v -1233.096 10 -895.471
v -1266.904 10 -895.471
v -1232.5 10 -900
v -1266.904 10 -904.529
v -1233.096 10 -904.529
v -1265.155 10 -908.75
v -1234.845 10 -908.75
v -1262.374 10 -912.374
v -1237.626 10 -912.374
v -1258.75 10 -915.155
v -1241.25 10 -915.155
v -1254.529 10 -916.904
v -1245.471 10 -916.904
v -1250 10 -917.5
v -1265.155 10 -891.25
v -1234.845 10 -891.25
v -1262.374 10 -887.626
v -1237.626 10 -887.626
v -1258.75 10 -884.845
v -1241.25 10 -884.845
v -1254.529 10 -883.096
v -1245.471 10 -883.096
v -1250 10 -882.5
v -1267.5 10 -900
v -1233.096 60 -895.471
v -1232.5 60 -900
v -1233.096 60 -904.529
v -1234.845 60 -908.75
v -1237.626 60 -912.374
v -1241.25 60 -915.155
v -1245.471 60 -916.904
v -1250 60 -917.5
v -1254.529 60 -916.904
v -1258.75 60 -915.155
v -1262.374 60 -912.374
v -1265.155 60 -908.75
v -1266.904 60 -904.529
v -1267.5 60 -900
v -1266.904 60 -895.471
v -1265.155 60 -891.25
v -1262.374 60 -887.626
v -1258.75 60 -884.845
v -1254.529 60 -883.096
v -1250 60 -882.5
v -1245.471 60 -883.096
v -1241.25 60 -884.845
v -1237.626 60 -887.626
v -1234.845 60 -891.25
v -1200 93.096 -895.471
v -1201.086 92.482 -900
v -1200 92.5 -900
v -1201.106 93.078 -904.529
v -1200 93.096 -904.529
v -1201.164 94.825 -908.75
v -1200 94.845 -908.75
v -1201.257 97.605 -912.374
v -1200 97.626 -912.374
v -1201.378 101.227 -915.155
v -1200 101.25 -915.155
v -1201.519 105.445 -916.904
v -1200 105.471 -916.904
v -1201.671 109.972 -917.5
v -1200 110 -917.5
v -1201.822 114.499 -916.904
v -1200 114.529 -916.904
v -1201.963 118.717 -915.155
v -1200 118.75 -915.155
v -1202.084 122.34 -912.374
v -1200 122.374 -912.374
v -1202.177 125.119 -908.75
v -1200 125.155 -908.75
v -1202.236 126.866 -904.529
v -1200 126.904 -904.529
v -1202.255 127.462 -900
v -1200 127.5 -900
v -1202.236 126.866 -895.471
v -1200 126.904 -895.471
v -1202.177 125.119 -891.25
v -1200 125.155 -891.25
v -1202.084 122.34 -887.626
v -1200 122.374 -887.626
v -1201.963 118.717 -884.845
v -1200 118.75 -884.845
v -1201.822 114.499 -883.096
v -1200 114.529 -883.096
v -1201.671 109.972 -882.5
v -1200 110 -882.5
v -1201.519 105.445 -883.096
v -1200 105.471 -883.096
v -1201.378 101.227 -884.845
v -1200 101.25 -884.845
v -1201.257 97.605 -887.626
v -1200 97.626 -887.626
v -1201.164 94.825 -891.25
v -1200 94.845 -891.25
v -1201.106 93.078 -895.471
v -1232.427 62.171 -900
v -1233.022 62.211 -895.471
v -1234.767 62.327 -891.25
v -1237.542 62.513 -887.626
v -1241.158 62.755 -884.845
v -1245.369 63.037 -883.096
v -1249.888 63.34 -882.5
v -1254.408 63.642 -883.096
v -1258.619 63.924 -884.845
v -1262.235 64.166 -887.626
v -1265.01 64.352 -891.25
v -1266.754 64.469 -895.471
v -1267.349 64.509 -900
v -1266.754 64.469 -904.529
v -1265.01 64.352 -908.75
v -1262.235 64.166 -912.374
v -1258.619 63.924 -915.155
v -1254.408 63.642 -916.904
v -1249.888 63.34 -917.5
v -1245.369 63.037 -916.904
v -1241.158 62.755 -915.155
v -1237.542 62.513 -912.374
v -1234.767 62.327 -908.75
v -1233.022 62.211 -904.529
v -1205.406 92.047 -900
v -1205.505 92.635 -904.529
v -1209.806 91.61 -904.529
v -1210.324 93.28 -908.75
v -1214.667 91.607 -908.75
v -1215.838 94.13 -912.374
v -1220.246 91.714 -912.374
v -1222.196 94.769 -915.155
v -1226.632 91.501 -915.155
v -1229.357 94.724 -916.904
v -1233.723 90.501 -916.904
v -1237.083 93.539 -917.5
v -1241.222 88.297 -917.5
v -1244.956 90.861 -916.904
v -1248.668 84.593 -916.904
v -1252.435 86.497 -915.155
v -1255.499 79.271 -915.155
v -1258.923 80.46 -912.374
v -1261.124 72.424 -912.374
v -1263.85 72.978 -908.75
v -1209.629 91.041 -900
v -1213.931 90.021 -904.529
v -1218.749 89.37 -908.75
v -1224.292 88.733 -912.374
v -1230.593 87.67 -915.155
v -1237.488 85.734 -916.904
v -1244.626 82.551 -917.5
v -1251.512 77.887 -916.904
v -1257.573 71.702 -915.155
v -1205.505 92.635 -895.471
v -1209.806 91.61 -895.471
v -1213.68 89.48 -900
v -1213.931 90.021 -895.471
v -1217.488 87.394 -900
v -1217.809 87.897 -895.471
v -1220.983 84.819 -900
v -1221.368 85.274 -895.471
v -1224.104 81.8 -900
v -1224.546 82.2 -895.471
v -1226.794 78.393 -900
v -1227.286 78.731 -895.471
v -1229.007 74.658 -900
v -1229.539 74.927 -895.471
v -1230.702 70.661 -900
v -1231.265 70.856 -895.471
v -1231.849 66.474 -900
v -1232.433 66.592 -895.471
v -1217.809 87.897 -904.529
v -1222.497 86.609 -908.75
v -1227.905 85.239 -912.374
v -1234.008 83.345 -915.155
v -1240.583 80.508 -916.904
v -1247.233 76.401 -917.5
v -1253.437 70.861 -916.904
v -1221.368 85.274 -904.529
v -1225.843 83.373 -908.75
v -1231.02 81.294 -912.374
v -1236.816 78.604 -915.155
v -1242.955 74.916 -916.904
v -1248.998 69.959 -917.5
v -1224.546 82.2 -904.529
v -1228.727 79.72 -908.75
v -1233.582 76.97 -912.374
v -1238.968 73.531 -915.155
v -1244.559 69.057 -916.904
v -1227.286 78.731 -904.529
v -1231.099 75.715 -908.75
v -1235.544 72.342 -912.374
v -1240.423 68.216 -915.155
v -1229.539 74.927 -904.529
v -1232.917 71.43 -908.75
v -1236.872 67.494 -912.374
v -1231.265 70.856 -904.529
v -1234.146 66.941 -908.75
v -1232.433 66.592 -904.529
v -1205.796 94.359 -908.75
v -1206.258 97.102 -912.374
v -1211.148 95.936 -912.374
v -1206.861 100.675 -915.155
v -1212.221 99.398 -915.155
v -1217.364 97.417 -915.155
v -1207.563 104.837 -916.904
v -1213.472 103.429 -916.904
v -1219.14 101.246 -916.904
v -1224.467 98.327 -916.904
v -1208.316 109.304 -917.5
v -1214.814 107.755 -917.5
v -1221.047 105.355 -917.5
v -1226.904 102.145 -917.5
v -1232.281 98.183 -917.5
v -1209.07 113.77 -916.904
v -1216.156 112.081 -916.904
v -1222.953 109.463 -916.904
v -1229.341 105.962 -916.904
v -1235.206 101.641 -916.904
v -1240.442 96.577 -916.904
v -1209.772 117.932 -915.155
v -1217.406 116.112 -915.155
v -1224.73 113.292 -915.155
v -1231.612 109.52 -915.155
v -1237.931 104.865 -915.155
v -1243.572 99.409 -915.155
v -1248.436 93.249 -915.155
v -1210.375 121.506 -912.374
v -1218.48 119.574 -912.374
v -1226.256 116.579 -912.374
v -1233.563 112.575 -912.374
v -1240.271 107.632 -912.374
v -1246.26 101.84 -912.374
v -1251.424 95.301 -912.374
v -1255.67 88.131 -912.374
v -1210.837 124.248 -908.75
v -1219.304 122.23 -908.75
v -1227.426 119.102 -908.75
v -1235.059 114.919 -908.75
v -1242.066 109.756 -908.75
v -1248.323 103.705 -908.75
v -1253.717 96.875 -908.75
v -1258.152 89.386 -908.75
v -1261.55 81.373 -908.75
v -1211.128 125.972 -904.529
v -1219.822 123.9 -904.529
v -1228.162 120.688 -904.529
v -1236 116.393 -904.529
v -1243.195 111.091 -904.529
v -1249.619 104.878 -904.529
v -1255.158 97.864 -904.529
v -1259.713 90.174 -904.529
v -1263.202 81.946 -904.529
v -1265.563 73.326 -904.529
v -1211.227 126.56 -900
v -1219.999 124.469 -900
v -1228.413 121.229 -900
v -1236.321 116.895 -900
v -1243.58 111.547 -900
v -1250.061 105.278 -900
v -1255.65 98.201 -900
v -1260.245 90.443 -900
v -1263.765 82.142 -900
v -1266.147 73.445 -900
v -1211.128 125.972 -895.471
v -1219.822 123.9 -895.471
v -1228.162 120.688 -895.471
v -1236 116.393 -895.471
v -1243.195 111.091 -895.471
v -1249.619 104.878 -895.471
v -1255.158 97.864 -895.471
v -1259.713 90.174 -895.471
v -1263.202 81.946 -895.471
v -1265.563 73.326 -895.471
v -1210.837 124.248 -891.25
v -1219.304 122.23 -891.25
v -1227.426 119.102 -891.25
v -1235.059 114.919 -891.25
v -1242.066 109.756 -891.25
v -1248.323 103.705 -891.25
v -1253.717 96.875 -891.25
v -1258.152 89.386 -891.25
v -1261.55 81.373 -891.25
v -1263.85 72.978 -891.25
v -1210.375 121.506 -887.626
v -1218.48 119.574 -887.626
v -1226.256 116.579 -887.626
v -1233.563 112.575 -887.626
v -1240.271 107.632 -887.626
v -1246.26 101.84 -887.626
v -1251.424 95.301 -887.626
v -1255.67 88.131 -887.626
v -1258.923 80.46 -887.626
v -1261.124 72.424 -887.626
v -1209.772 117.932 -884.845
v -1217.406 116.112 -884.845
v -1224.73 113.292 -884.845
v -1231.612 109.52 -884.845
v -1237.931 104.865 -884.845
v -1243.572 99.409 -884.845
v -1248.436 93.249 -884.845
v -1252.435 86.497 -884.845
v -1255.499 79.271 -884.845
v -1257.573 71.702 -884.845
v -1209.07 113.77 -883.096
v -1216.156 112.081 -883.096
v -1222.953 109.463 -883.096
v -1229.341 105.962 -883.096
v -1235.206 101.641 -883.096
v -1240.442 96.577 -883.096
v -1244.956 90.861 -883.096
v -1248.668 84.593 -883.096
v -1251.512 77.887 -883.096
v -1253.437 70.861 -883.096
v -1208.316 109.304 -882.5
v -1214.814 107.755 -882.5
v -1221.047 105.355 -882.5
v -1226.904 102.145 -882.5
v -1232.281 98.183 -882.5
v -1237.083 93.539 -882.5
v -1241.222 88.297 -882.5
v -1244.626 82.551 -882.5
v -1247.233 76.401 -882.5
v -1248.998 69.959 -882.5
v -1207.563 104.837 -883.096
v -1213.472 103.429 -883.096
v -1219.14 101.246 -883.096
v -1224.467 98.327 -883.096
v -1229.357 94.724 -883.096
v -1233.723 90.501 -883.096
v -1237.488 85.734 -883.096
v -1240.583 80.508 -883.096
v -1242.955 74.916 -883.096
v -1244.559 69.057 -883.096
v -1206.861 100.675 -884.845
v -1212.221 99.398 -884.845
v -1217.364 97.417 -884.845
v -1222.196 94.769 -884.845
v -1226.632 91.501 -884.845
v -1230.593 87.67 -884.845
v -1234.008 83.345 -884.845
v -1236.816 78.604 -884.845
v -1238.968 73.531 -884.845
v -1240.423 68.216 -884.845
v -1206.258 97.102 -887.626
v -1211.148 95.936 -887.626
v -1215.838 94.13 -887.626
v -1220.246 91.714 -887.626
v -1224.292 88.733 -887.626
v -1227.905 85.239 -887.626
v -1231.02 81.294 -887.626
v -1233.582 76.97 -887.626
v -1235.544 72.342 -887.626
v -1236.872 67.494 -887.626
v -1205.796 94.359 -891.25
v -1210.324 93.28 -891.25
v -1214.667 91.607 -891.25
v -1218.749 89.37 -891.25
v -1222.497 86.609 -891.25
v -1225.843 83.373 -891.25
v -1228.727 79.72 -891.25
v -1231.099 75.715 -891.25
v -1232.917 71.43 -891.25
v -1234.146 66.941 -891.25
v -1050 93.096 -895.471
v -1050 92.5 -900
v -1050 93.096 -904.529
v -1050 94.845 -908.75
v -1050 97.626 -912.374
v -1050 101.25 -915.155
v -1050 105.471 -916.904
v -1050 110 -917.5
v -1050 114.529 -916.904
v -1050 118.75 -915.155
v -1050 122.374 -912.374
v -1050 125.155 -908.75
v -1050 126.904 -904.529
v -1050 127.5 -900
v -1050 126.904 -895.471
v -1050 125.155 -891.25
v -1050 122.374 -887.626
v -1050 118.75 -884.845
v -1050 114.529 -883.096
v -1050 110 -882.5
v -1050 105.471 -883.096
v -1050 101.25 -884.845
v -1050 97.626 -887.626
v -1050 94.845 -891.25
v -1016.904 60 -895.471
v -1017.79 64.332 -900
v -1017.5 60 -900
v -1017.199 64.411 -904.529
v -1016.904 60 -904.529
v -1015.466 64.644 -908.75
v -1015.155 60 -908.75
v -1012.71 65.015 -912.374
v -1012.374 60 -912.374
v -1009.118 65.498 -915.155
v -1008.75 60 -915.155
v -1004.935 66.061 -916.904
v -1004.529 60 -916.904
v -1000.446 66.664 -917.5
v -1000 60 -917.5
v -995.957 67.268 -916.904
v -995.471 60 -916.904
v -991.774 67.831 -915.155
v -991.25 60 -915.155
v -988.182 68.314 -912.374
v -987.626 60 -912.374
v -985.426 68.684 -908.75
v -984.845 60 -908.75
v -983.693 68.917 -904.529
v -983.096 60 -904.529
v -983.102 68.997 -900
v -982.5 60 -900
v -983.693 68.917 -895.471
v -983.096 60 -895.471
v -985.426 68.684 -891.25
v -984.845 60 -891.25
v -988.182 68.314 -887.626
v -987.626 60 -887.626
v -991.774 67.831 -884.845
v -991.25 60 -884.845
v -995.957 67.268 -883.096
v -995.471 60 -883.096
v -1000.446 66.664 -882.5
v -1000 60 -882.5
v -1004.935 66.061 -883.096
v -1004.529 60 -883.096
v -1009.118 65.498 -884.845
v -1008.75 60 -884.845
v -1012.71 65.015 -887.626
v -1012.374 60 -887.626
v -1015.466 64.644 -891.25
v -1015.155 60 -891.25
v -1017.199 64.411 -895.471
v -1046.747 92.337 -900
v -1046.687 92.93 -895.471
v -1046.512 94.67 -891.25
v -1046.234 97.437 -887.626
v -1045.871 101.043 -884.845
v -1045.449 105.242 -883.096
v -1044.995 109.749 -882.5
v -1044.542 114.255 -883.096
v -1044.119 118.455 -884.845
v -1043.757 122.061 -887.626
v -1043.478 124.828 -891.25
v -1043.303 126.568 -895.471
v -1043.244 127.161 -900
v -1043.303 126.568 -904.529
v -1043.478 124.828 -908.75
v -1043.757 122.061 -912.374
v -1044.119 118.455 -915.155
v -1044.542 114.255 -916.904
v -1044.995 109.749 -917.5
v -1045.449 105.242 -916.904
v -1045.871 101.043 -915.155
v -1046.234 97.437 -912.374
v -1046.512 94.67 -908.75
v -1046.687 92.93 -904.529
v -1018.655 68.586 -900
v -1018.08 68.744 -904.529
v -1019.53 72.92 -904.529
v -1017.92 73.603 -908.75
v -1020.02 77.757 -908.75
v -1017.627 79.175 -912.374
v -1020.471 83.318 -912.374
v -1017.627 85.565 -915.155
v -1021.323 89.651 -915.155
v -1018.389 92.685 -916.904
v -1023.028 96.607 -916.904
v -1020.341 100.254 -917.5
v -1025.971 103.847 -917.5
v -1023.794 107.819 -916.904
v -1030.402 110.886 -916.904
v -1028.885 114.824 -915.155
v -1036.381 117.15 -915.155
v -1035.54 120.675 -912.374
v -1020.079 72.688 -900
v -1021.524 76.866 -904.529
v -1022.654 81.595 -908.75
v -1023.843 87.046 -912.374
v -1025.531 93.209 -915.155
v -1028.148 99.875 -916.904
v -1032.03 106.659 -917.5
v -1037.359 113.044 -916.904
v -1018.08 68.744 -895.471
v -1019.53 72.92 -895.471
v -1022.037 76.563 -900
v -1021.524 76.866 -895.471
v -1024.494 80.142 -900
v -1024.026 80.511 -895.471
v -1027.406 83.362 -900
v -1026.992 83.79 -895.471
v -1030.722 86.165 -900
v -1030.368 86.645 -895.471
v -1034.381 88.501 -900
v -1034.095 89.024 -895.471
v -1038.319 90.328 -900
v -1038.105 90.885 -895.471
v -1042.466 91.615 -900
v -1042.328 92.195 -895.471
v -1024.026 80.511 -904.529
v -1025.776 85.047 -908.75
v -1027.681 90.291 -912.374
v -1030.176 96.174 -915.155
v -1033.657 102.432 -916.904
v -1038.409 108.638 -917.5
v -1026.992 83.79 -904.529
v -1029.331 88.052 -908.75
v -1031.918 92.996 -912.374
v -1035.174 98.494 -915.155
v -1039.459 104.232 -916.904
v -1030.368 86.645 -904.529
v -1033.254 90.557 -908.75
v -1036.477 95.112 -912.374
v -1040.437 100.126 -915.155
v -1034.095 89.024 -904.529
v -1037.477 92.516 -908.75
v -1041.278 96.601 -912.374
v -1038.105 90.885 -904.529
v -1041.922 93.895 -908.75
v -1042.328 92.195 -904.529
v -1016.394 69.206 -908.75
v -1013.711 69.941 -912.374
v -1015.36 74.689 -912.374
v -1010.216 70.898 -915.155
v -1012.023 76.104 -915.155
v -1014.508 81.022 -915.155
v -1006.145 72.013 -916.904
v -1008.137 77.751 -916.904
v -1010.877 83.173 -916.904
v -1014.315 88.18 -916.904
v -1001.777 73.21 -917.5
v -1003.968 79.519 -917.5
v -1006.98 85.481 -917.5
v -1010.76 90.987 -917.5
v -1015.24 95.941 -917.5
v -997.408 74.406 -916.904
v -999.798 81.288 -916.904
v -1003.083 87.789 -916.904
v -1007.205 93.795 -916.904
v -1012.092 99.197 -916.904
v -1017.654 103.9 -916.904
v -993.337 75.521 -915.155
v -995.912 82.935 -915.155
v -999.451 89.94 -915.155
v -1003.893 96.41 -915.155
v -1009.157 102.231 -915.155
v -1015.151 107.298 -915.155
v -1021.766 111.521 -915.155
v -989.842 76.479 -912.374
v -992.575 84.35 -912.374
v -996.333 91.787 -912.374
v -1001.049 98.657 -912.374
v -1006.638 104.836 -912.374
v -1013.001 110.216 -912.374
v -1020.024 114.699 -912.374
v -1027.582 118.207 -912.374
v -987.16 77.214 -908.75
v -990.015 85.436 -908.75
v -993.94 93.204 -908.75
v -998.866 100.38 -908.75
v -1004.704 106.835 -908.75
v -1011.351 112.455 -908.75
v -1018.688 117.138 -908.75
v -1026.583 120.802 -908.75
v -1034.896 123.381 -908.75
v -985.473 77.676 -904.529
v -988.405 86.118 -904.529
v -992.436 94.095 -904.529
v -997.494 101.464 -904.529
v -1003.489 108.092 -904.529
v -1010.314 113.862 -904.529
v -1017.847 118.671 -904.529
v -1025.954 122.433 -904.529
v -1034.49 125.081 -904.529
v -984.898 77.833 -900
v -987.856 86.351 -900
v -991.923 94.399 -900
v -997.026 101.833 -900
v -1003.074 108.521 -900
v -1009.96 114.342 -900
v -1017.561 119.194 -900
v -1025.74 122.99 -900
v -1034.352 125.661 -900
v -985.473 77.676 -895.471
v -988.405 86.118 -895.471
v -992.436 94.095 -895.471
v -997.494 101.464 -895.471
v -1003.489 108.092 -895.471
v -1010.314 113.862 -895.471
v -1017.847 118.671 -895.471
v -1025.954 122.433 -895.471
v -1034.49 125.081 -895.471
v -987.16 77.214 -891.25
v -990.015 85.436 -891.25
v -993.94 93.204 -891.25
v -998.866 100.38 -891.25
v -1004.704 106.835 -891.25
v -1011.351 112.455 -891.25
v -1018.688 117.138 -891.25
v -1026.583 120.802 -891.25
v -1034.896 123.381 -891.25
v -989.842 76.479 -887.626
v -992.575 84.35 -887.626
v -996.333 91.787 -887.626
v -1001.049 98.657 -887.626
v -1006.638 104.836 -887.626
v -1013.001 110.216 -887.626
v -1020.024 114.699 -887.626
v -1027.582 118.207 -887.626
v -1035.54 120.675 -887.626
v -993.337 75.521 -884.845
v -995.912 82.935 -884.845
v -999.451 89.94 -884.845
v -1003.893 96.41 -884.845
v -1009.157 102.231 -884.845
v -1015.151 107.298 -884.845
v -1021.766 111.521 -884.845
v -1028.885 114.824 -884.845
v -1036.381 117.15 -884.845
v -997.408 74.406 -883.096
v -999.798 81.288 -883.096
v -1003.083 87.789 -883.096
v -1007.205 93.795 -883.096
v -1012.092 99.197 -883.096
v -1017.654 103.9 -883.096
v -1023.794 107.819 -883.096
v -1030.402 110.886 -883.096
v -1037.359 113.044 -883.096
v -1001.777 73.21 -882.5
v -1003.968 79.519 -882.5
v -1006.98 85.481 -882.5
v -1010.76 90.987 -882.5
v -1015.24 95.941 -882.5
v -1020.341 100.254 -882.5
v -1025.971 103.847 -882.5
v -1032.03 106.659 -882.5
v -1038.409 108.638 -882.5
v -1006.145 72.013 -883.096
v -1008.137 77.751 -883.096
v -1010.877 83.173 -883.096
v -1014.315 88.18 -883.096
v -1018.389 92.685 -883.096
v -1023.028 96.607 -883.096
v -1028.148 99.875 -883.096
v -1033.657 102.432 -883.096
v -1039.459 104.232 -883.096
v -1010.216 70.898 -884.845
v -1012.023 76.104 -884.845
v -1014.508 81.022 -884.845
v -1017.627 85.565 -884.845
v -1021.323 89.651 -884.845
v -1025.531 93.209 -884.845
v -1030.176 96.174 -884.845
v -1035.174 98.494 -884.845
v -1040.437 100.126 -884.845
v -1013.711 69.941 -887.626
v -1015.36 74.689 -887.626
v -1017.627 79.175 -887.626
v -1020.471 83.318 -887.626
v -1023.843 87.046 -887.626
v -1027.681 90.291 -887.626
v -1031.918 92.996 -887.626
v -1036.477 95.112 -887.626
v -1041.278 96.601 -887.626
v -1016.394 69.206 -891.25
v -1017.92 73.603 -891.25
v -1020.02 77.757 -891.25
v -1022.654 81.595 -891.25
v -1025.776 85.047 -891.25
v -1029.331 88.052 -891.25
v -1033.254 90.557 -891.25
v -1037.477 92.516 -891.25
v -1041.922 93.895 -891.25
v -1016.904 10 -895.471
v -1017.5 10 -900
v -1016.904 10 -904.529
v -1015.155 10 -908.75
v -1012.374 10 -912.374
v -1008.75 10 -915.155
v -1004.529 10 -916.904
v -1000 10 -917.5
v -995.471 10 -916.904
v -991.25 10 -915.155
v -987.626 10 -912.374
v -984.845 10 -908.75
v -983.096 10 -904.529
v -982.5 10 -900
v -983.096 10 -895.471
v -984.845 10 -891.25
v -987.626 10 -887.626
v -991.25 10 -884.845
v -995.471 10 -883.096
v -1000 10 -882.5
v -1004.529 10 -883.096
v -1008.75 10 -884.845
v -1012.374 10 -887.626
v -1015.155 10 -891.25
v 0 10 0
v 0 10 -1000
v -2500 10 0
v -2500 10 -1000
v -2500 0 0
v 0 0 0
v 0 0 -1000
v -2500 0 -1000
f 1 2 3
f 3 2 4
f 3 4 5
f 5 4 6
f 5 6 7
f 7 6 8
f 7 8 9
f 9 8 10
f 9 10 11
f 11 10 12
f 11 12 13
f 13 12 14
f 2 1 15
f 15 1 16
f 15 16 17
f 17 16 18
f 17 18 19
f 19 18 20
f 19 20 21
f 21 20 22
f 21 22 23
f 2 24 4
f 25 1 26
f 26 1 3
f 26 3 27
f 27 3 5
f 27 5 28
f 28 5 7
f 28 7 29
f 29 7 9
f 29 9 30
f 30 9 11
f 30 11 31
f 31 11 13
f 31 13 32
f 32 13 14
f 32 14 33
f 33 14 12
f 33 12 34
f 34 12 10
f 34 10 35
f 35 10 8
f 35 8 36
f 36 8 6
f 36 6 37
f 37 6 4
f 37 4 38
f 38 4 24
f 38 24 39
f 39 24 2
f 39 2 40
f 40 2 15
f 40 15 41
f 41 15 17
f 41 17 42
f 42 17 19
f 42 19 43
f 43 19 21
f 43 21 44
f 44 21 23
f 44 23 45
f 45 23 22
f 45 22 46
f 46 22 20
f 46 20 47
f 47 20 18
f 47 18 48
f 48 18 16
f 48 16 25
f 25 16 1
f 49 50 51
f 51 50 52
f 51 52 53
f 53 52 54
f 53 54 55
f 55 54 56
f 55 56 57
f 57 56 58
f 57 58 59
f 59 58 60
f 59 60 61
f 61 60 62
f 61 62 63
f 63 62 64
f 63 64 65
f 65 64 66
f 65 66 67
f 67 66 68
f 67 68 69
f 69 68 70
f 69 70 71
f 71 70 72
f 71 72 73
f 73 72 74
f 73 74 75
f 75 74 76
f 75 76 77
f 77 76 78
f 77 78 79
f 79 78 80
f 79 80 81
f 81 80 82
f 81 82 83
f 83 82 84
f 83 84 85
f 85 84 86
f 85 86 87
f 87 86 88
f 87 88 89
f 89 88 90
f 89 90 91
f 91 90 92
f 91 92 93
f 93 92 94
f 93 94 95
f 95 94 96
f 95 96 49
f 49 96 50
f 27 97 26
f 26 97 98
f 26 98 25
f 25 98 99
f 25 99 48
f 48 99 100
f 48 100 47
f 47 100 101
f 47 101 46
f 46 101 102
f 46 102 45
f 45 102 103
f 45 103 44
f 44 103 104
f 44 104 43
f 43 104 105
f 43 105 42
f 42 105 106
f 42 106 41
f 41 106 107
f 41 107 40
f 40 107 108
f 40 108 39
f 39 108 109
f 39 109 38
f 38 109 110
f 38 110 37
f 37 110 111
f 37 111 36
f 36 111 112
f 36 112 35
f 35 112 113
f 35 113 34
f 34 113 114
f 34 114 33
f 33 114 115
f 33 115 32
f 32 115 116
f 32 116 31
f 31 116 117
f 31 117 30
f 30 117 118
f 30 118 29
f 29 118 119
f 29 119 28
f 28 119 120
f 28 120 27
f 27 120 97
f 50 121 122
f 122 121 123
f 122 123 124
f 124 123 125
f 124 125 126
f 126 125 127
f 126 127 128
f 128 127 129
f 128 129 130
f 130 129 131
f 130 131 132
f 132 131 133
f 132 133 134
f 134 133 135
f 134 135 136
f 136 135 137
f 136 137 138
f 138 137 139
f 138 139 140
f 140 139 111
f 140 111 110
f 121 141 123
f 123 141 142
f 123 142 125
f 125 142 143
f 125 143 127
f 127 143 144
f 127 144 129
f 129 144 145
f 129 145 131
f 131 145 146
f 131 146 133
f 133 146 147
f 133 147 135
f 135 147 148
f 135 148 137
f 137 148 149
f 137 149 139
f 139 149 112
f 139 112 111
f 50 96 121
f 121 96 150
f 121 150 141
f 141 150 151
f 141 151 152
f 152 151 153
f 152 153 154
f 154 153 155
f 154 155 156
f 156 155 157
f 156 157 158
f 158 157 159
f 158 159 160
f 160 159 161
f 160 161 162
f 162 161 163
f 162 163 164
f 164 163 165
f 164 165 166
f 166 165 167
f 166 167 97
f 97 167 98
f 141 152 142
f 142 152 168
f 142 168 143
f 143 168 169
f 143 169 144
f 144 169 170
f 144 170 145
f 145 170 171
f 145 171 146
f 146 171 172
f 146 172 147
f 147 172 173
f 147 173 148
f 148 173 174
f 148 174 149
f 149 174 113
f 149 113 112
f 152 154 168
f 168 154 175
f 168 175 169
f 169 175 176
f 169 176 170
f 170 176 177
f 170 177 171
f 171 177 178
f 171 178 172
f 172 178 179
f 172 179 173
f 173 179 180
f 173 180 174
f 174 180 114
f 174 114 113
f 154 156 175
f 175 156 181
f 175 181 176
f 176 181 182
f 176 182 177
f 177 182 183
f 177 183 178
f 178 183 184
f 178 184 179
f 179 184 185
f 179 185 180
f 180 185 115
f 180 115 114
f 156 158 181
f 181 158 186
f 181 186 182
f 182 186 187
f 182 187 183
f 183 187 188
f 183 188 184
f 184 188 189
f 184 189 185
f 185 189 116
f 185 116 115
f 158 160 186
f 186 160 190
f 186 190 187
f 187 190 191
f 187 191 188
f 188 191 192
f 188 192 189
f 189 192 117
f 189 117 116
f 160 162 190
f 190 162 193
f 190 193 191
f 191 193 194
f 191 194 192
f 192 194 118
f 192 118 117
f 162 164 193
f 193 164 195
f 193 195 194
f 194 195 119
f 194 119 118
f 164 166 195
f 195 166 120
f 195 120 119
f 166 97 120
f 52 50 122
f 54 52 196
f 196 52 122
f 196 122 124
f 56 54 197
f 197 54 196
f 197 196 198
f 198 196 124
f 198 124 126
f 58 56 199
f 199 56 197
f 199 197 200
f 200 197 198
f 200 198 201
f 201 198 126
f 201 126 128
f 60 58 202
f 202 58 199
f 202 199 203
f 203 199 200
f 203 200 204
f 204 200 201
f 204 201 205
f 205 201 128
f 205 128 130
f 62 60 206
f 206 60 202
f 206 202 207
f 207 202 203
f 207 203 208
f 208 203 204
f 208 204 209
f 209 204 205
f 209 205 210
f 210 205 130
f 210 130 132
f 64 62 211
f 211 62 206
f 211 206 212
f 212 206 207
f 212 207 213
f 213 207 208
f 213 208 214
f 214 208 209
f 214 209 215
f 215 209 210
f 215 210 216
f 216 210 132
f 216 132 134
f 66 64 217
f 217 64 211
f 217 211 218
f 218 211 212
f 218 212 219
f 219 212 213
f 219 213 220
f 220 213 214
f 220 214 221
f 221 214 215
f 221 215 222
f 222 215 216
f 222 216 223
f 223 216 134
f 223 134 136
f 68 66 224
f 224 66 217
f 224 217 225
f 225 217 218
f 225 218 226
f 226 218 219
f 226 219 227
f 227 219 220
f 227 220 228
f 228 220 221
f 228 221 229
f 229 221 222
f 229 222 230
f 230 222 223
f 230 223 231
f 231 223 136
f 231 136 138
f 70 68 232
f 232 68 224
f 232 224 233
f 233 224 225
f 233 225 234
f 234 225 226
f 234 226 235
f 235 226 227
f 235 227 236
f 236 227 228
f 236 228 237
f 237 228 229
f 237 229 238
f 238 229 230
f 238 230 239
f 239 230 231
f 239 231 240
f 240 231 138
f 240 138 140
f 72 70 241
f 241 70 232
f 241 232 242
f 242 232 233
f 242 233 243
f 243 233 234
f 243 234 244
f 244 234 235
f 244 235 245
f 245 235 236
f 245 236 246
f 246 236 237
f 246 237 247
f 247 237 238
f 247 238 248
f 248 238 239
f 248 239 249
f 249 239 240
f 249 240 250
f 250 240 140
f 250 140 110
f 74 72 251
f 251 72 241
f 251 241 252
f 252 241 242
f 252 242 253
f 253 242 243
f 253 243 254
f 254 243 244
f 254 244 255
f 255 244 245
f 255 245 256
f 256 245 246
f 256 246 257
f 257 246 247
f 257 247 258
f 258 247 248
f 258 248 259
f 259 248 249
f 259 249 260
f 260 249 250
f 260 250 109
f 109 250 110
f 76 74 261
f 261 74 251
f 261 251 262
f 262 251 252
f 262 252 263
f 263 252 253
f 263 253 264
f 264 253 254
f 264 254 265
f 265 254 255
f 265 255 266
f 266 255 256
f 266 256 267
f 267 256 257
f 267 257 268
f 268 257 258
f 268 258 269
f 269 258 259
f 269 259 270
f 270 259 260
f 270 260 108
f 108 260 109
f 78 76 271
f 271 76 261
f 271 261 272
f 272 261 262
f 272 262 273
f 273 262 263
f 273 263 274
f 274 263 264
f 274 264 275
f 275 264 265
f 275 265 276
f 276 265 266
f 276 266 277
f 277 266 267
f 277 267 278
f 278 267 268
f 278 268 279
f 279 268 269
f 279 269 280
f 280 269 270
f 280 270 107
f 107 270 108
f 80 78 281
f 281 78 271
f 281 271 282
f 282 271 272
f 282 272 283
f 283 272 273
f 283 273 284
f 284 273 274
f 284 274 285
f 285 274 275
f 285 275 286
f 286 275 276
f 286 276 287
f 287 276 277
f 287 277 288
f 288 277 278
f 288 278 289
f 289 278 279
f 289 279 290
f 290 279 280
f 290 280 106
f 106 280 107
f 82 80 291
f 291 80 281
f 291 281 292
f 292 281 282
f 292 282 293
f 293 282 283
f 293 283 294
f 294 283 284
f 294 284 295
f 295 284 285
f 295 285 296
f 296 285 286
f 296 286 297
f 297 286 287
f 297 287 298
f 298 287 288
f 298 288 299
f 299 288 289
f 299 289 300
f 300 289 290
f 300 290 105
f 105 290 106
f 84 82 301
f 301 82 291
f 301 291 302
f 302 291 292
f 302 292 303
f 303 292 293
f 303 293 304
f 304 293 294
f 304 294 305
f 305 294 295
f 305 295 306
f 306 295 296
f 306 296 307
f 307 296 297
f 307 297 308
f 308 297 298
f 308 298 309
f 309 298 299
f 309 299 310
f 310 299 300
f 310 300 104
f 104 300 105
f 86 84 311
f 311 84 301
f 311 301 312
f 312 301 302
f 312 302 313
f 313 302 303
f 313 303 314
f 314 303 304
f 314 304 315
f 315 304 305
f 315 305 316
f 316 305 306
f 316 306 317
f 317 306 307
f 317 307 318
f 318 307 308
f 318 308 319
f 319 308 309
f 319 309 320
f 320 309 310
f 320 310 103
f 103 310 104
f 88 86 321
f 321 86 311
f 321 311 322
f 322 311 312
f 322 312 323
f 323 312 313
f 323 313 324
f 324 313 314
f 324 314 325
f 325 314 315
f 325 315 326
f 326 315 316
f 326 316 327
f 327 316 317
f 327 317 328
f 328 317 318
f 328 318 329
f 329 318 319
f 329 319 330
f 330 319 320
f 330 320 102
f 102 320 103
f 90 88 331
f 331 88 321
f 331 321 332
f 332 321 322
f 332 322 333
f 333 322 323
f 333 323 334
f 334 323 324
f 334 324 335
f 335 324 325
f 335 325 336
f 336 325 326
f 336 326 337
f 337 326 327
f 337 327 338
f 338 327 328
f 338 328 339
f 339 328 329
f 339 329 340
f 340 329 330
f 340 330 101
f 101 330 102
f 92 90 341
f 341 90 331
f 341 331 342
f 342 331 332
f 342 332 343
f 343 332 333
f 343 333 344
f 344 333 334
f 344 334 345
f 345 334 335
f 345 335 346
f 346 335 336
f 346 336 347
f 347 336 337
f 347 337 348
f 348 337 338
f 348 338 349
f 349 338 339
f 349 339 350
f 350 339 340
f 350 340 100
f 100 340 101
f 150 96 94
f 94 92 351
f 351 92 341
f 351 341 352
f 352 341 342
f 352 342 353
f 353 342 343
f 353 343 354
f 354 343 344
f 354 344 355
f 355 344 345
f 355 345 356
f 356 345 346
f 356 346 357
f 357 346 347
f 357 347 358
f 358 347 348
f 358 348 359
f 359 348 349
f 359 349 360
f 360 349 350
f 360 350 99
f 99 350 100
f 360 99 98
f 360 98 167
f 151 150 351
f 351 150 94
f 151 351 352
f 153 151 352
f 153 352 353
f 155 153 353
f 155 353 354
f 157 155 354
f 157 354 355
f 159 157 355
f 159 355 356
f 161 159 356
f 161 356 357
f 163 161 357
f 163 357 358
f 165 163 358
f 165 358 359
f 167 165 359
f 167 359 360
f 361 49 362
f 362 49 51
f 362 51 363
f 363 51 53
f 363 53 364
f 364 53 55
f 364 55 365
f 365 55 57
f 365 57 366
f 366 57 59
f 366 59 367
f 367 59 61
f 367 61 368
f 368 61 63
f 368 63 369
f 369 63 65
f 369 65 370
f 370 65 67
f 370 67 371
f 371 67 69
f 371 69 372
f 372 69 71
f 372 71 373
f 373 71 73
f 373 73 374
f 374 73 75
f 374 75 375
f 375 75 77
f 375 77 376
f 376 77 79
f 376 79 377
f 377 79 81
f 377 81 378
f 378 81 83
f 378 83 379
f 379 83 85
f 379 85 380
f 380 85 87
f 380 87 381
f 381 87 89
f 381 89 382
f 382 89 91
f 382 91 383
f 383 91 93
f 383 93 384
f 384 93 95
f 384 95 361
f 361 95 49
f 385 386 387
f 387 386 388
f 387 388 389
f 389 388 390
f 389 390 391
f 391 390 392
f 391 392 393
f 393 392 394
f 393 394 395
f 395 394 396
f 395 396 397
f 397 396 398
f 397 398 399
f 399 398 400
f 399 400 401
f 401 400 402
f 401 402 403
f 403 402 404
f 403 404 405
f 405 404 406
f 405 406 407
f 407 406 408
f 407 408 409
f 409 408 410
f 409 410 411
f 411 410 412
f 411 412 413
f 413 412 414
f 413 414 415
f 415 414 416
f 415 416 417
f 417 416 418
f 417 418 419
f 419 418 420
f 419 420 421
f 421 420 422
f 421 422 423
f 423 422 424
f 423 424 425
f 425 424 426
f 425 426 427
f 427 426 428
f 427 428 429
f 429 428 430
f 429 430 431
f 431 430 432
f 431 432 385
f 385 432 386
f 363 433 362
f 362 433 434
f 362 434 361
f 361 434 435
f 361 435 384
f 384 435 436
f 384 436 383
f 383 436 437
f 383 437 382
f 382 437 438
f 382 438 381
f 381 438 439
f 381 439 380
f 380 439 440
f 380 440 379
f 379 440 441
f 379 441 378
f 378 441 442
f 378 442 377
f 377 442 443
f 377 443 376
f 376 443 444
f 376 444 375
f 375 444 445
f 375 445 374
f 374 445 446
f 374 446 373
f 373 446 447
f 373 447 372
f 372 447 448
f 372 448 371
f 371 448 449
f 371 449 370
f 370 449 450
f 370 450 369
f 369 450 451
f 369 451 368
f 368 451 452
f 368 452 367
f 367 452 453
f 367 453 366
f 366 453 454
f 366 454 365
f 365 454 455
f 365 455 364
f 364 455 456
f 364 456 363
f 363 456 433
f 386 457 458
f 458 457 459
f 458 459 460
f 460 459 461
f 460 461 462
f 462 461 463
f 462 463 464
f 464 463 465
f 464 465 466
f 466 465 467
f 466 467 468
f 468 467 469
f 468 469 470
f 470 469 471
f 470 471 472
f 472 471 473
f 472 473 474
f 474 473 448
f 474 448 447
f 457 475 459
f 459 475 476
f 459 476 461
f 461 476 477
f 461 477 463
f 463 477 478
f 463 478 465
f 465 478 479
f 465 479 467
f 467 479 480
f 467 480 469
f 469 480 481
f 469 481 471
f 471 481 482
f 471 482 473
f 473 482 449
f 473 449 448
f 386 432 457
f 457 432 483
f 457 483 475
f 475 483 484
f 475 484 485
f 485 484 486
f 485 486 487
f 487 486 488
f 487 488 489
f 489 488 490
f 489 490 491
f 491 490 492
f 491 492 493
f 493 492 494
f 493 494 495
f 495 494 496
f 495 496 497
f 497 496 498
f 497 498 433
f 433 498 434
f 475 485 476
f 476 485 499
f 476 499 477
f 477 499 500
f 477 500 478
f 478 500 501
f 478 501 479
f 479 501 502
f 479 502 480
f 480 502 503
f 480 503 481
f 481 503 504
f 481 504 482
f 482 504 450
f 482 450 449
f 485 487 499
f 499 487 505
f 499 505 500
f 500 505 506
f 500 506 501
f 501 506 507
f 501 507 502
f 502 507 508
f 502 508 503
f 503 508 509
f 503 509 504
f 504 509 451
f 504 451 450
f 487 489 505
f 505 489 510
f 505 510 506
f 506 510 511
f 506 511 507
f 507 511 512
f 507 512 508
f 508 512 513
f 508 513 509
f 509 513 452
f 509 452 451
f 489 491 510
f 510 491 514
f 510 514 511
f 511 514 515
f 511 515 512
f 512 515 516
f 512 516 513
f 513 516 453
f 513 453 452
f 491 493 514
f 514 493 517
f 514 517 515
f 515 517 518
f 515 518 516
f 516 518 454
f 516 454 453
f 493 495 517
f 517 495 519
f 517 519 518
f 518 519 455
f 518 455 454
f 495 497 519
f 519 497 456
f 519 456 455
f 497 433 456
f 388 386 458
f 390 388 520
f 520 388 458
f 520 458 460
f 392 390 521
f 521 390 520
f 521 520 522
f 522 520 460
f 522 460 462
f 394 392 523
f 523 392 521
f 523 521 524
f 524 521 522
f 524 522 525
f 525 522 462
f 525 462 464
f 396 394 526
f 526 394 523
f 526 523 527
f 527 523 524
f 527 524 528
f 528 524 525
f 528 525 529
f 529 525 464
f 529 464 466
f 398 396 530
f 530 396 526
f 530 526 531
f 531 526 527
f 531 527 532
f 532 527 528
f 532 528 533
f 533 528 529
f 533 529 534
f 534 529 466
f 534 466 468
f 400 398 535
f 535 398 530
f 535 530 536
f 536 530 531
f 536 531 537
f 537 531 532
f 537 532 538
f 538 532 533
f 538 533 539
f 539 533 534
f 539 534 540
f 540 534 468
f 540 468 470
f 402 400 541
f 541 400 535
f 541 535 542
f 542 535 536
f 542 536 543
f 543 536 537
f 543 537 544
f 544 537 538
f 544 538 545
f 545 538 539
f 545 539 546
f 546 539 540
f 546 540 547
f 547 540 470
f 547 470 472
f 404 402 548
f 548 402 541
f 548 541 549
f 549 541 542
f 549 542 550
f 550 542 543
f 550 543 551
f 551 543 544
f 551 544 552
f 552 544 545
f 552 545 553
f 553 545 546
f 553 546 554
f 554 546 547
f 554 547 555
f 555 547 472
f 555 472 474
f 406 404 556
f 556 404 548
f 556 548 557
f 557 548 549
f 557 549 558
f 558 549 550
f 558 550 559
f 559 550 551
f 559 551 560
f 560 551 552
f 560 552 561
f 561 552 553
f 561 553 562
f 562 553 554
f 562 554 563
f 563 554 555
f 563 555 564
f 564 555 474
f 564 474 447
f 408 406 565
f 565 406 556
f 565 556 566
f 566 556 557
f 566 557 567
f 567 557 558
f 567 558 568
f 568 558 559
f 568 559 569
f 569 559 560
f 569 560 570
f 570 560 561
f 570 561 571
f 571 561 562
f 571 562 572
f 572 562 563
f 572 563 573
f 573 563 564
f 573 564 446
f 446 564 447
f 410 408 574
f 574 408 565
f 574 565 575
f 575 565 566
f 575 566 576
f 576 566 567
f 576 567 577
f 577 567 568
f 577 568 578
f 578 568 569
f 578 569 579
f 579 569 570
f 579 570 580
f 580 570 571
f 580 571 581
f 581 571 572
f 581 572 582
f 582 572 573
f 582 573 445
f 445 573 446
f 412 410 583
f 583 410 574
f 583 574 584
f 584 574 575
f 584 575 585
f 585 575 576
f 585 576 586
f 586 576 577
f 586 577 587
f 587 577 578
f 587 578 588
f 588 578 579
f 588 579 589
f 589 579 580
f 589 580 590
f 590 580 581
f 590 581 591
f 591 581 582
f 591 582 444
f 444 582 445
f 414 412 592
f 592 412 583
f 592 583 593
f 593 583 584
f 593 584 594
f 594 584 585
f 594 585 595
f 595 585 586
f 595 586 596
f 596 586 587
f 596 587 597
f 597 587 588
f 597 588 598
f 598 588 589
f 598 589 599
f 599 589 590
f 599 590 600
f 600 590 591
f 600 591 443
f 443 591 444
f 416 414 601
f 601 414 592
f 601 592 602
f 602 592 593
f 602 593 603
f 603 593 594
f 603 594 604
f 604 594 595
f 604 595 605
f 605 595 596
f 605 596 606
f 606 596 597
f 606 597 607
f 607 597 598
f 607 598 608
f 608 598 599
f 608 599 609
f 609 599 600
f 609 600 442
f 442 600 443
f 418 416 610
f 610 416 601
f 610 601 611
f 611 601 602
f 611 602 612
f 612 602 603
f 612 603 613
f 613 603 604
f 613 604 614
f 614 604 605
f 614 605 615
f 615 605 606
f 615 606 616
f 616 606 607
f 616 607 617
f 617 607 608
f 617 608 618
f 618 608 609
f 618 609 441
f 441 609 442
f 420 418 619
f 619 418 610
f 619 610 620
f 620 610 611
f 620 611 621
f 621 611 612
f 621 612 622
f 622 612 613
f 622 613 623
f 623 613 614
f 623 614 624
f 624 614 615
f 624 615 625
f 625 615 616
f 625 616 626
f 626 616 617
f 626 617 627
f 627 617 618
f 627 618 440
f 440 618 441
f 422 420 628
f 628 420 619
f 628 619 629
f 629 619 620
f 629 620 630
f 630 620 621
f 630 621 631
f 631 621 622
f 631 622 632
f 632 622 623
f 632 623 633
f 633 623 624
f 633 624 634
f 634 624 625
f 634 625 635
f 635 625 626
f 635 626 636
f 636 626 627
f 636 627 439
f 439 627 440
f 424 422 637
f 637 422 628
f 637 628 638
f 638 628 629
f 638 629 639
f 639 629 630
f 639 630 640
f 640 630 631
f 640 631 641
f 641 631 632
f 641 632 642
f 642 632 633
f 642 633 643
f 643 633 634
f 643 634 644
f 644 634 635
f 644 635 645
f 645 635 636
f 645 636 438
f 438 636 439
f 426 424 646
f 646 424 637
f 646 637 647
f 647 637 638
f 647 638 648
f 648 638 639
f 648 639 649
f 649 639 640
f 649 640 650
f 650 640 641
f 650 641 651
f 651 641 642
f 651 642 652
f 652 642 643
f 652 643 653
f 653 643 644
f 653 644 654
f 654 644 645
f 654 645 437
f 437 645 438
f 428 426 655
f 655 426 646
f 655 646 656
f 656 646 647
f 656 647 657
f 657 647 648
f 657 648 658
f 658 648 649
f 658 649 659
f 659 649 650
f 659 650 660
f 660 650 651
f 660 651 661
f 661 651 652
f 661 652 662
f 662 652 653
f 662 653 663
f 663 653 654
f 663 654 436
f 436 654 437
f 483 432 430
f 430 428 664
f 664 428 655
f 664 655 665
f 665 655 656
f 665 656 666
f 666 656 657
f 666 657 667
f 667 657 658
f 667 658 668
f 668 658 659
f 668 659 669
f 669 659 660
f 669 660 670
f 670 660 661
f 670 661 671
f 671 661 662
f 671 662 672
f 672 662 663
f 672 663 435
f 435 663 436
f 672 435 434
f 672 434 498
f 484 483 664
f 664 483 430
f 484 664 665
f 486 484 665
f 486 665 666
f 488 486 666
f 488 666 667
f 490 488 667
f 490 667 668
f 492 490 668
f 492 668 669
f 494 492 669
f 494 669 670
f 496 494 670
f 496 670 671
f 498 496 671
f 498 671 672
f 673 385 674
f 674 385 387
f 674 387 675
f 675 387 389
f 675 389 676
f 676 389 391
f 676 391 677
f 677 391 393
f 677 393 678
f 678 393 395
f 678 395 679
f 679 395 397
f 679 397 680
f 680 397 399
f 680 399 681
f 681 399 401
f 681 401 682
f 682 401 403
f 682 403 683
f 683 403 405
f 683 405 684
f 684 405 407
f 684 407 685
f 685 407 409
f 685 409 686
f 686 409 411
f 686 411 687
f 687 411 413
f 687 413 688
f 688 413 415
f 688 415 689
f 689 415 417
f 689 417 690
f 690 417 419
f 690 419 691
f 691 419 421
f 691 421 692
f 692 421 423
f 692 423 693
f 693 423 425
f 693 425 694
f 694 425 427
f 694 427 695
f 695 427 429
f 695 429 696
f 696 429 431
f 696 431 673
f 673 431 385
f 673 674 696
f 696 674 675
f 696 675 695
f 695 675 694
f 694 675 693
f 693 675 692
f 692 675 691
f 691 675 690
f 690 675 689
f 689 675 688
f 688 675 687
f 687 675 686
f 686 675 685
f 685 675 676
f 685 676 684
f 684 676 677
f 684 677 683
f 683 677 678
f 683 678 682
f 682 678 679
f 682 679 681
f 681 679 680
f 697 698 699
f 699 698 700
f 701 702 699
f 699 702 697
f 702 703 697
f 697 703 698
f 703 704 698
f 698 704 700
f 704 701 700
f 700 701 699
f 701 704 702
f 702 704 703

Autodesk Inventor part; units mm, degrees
ref_plane "YZ Plane" through (0, 0, 0) normal (1, 0, 0) x (0, 1, 0)
sketch "Sketch1" plane through (0, 0, 0) normal (0, 1, 0) x (-1, 0, 0)
  line L0 (0, 0) -> (2500, 0)
  line L1 (2500, 0) -> (2500, -1000)
  line L2 (2500, -1000) -> (0, -1000)
  line L3 (0, -1000) -> (0, 0)
  dimension "d0" = 2500
  dimension "d1" = 1000
extrude "Extrusion1" add sketch "Sketch1" along normal blind 10
sketch "Sketch2" plane through (0, 10, 0) normal (0, 1, 0) x (1, 0, 0)
  line L0 (-2500, 0) -> (0, 0) projected
  line L1 (0, 0) -> (0, 1000) projected
  line L2 (0, 1000) -> (-2500, 1000) projected
  line L3 (-2500, 1000) -> (-2500, 0) projected
  circle A0 centre (-1250, 900) radius 17.5
  dimension "d4" = 35
  dimension "d5" = 100
  dimension "d6" = 1250
ref_plane "Work Plane1" through (0, 0, -900) normal (0, 0, -1) x (-1, 0, 0)
sketch "Sketch3" plane through (0, 0, -900) normal (0, 0, -1) x (-1, 0, 0)
  line L0 (1000, 10) -> (1000, 60)
  line L1 (1050, 110) -> (1200, 110)
  line L2 (1250, 60) -> (1250, 10)
  arc A0 (1050, 110) -> (1000, 60) centre (1050, 60) ccw
  arc A1 (1250, 60) -> (1200, 110) centre (1200, 60) ccw
  point P0 (0, 0)
  point P1 (1000, 110)
  point P2 (1250, 110)
  dimension "d8" = 250
  dimension "d9" = 100
  dimension "d10" = 50
  dimension "d11" = 250
sweep "Sweep1" add profiles "Sketch2" path "Sketch3" contours A0
ref_plane "Work Plane2" through (0, 10, 0) normal (0, 1, 0) x (1, 0, 0)
split body "Split1" result two bodies by plane through (0, 10, 0) normal (0, 1, 0) first body at (-1150, 93.2201, -902.727)
properties part number "doorLeft" material "Glass"
